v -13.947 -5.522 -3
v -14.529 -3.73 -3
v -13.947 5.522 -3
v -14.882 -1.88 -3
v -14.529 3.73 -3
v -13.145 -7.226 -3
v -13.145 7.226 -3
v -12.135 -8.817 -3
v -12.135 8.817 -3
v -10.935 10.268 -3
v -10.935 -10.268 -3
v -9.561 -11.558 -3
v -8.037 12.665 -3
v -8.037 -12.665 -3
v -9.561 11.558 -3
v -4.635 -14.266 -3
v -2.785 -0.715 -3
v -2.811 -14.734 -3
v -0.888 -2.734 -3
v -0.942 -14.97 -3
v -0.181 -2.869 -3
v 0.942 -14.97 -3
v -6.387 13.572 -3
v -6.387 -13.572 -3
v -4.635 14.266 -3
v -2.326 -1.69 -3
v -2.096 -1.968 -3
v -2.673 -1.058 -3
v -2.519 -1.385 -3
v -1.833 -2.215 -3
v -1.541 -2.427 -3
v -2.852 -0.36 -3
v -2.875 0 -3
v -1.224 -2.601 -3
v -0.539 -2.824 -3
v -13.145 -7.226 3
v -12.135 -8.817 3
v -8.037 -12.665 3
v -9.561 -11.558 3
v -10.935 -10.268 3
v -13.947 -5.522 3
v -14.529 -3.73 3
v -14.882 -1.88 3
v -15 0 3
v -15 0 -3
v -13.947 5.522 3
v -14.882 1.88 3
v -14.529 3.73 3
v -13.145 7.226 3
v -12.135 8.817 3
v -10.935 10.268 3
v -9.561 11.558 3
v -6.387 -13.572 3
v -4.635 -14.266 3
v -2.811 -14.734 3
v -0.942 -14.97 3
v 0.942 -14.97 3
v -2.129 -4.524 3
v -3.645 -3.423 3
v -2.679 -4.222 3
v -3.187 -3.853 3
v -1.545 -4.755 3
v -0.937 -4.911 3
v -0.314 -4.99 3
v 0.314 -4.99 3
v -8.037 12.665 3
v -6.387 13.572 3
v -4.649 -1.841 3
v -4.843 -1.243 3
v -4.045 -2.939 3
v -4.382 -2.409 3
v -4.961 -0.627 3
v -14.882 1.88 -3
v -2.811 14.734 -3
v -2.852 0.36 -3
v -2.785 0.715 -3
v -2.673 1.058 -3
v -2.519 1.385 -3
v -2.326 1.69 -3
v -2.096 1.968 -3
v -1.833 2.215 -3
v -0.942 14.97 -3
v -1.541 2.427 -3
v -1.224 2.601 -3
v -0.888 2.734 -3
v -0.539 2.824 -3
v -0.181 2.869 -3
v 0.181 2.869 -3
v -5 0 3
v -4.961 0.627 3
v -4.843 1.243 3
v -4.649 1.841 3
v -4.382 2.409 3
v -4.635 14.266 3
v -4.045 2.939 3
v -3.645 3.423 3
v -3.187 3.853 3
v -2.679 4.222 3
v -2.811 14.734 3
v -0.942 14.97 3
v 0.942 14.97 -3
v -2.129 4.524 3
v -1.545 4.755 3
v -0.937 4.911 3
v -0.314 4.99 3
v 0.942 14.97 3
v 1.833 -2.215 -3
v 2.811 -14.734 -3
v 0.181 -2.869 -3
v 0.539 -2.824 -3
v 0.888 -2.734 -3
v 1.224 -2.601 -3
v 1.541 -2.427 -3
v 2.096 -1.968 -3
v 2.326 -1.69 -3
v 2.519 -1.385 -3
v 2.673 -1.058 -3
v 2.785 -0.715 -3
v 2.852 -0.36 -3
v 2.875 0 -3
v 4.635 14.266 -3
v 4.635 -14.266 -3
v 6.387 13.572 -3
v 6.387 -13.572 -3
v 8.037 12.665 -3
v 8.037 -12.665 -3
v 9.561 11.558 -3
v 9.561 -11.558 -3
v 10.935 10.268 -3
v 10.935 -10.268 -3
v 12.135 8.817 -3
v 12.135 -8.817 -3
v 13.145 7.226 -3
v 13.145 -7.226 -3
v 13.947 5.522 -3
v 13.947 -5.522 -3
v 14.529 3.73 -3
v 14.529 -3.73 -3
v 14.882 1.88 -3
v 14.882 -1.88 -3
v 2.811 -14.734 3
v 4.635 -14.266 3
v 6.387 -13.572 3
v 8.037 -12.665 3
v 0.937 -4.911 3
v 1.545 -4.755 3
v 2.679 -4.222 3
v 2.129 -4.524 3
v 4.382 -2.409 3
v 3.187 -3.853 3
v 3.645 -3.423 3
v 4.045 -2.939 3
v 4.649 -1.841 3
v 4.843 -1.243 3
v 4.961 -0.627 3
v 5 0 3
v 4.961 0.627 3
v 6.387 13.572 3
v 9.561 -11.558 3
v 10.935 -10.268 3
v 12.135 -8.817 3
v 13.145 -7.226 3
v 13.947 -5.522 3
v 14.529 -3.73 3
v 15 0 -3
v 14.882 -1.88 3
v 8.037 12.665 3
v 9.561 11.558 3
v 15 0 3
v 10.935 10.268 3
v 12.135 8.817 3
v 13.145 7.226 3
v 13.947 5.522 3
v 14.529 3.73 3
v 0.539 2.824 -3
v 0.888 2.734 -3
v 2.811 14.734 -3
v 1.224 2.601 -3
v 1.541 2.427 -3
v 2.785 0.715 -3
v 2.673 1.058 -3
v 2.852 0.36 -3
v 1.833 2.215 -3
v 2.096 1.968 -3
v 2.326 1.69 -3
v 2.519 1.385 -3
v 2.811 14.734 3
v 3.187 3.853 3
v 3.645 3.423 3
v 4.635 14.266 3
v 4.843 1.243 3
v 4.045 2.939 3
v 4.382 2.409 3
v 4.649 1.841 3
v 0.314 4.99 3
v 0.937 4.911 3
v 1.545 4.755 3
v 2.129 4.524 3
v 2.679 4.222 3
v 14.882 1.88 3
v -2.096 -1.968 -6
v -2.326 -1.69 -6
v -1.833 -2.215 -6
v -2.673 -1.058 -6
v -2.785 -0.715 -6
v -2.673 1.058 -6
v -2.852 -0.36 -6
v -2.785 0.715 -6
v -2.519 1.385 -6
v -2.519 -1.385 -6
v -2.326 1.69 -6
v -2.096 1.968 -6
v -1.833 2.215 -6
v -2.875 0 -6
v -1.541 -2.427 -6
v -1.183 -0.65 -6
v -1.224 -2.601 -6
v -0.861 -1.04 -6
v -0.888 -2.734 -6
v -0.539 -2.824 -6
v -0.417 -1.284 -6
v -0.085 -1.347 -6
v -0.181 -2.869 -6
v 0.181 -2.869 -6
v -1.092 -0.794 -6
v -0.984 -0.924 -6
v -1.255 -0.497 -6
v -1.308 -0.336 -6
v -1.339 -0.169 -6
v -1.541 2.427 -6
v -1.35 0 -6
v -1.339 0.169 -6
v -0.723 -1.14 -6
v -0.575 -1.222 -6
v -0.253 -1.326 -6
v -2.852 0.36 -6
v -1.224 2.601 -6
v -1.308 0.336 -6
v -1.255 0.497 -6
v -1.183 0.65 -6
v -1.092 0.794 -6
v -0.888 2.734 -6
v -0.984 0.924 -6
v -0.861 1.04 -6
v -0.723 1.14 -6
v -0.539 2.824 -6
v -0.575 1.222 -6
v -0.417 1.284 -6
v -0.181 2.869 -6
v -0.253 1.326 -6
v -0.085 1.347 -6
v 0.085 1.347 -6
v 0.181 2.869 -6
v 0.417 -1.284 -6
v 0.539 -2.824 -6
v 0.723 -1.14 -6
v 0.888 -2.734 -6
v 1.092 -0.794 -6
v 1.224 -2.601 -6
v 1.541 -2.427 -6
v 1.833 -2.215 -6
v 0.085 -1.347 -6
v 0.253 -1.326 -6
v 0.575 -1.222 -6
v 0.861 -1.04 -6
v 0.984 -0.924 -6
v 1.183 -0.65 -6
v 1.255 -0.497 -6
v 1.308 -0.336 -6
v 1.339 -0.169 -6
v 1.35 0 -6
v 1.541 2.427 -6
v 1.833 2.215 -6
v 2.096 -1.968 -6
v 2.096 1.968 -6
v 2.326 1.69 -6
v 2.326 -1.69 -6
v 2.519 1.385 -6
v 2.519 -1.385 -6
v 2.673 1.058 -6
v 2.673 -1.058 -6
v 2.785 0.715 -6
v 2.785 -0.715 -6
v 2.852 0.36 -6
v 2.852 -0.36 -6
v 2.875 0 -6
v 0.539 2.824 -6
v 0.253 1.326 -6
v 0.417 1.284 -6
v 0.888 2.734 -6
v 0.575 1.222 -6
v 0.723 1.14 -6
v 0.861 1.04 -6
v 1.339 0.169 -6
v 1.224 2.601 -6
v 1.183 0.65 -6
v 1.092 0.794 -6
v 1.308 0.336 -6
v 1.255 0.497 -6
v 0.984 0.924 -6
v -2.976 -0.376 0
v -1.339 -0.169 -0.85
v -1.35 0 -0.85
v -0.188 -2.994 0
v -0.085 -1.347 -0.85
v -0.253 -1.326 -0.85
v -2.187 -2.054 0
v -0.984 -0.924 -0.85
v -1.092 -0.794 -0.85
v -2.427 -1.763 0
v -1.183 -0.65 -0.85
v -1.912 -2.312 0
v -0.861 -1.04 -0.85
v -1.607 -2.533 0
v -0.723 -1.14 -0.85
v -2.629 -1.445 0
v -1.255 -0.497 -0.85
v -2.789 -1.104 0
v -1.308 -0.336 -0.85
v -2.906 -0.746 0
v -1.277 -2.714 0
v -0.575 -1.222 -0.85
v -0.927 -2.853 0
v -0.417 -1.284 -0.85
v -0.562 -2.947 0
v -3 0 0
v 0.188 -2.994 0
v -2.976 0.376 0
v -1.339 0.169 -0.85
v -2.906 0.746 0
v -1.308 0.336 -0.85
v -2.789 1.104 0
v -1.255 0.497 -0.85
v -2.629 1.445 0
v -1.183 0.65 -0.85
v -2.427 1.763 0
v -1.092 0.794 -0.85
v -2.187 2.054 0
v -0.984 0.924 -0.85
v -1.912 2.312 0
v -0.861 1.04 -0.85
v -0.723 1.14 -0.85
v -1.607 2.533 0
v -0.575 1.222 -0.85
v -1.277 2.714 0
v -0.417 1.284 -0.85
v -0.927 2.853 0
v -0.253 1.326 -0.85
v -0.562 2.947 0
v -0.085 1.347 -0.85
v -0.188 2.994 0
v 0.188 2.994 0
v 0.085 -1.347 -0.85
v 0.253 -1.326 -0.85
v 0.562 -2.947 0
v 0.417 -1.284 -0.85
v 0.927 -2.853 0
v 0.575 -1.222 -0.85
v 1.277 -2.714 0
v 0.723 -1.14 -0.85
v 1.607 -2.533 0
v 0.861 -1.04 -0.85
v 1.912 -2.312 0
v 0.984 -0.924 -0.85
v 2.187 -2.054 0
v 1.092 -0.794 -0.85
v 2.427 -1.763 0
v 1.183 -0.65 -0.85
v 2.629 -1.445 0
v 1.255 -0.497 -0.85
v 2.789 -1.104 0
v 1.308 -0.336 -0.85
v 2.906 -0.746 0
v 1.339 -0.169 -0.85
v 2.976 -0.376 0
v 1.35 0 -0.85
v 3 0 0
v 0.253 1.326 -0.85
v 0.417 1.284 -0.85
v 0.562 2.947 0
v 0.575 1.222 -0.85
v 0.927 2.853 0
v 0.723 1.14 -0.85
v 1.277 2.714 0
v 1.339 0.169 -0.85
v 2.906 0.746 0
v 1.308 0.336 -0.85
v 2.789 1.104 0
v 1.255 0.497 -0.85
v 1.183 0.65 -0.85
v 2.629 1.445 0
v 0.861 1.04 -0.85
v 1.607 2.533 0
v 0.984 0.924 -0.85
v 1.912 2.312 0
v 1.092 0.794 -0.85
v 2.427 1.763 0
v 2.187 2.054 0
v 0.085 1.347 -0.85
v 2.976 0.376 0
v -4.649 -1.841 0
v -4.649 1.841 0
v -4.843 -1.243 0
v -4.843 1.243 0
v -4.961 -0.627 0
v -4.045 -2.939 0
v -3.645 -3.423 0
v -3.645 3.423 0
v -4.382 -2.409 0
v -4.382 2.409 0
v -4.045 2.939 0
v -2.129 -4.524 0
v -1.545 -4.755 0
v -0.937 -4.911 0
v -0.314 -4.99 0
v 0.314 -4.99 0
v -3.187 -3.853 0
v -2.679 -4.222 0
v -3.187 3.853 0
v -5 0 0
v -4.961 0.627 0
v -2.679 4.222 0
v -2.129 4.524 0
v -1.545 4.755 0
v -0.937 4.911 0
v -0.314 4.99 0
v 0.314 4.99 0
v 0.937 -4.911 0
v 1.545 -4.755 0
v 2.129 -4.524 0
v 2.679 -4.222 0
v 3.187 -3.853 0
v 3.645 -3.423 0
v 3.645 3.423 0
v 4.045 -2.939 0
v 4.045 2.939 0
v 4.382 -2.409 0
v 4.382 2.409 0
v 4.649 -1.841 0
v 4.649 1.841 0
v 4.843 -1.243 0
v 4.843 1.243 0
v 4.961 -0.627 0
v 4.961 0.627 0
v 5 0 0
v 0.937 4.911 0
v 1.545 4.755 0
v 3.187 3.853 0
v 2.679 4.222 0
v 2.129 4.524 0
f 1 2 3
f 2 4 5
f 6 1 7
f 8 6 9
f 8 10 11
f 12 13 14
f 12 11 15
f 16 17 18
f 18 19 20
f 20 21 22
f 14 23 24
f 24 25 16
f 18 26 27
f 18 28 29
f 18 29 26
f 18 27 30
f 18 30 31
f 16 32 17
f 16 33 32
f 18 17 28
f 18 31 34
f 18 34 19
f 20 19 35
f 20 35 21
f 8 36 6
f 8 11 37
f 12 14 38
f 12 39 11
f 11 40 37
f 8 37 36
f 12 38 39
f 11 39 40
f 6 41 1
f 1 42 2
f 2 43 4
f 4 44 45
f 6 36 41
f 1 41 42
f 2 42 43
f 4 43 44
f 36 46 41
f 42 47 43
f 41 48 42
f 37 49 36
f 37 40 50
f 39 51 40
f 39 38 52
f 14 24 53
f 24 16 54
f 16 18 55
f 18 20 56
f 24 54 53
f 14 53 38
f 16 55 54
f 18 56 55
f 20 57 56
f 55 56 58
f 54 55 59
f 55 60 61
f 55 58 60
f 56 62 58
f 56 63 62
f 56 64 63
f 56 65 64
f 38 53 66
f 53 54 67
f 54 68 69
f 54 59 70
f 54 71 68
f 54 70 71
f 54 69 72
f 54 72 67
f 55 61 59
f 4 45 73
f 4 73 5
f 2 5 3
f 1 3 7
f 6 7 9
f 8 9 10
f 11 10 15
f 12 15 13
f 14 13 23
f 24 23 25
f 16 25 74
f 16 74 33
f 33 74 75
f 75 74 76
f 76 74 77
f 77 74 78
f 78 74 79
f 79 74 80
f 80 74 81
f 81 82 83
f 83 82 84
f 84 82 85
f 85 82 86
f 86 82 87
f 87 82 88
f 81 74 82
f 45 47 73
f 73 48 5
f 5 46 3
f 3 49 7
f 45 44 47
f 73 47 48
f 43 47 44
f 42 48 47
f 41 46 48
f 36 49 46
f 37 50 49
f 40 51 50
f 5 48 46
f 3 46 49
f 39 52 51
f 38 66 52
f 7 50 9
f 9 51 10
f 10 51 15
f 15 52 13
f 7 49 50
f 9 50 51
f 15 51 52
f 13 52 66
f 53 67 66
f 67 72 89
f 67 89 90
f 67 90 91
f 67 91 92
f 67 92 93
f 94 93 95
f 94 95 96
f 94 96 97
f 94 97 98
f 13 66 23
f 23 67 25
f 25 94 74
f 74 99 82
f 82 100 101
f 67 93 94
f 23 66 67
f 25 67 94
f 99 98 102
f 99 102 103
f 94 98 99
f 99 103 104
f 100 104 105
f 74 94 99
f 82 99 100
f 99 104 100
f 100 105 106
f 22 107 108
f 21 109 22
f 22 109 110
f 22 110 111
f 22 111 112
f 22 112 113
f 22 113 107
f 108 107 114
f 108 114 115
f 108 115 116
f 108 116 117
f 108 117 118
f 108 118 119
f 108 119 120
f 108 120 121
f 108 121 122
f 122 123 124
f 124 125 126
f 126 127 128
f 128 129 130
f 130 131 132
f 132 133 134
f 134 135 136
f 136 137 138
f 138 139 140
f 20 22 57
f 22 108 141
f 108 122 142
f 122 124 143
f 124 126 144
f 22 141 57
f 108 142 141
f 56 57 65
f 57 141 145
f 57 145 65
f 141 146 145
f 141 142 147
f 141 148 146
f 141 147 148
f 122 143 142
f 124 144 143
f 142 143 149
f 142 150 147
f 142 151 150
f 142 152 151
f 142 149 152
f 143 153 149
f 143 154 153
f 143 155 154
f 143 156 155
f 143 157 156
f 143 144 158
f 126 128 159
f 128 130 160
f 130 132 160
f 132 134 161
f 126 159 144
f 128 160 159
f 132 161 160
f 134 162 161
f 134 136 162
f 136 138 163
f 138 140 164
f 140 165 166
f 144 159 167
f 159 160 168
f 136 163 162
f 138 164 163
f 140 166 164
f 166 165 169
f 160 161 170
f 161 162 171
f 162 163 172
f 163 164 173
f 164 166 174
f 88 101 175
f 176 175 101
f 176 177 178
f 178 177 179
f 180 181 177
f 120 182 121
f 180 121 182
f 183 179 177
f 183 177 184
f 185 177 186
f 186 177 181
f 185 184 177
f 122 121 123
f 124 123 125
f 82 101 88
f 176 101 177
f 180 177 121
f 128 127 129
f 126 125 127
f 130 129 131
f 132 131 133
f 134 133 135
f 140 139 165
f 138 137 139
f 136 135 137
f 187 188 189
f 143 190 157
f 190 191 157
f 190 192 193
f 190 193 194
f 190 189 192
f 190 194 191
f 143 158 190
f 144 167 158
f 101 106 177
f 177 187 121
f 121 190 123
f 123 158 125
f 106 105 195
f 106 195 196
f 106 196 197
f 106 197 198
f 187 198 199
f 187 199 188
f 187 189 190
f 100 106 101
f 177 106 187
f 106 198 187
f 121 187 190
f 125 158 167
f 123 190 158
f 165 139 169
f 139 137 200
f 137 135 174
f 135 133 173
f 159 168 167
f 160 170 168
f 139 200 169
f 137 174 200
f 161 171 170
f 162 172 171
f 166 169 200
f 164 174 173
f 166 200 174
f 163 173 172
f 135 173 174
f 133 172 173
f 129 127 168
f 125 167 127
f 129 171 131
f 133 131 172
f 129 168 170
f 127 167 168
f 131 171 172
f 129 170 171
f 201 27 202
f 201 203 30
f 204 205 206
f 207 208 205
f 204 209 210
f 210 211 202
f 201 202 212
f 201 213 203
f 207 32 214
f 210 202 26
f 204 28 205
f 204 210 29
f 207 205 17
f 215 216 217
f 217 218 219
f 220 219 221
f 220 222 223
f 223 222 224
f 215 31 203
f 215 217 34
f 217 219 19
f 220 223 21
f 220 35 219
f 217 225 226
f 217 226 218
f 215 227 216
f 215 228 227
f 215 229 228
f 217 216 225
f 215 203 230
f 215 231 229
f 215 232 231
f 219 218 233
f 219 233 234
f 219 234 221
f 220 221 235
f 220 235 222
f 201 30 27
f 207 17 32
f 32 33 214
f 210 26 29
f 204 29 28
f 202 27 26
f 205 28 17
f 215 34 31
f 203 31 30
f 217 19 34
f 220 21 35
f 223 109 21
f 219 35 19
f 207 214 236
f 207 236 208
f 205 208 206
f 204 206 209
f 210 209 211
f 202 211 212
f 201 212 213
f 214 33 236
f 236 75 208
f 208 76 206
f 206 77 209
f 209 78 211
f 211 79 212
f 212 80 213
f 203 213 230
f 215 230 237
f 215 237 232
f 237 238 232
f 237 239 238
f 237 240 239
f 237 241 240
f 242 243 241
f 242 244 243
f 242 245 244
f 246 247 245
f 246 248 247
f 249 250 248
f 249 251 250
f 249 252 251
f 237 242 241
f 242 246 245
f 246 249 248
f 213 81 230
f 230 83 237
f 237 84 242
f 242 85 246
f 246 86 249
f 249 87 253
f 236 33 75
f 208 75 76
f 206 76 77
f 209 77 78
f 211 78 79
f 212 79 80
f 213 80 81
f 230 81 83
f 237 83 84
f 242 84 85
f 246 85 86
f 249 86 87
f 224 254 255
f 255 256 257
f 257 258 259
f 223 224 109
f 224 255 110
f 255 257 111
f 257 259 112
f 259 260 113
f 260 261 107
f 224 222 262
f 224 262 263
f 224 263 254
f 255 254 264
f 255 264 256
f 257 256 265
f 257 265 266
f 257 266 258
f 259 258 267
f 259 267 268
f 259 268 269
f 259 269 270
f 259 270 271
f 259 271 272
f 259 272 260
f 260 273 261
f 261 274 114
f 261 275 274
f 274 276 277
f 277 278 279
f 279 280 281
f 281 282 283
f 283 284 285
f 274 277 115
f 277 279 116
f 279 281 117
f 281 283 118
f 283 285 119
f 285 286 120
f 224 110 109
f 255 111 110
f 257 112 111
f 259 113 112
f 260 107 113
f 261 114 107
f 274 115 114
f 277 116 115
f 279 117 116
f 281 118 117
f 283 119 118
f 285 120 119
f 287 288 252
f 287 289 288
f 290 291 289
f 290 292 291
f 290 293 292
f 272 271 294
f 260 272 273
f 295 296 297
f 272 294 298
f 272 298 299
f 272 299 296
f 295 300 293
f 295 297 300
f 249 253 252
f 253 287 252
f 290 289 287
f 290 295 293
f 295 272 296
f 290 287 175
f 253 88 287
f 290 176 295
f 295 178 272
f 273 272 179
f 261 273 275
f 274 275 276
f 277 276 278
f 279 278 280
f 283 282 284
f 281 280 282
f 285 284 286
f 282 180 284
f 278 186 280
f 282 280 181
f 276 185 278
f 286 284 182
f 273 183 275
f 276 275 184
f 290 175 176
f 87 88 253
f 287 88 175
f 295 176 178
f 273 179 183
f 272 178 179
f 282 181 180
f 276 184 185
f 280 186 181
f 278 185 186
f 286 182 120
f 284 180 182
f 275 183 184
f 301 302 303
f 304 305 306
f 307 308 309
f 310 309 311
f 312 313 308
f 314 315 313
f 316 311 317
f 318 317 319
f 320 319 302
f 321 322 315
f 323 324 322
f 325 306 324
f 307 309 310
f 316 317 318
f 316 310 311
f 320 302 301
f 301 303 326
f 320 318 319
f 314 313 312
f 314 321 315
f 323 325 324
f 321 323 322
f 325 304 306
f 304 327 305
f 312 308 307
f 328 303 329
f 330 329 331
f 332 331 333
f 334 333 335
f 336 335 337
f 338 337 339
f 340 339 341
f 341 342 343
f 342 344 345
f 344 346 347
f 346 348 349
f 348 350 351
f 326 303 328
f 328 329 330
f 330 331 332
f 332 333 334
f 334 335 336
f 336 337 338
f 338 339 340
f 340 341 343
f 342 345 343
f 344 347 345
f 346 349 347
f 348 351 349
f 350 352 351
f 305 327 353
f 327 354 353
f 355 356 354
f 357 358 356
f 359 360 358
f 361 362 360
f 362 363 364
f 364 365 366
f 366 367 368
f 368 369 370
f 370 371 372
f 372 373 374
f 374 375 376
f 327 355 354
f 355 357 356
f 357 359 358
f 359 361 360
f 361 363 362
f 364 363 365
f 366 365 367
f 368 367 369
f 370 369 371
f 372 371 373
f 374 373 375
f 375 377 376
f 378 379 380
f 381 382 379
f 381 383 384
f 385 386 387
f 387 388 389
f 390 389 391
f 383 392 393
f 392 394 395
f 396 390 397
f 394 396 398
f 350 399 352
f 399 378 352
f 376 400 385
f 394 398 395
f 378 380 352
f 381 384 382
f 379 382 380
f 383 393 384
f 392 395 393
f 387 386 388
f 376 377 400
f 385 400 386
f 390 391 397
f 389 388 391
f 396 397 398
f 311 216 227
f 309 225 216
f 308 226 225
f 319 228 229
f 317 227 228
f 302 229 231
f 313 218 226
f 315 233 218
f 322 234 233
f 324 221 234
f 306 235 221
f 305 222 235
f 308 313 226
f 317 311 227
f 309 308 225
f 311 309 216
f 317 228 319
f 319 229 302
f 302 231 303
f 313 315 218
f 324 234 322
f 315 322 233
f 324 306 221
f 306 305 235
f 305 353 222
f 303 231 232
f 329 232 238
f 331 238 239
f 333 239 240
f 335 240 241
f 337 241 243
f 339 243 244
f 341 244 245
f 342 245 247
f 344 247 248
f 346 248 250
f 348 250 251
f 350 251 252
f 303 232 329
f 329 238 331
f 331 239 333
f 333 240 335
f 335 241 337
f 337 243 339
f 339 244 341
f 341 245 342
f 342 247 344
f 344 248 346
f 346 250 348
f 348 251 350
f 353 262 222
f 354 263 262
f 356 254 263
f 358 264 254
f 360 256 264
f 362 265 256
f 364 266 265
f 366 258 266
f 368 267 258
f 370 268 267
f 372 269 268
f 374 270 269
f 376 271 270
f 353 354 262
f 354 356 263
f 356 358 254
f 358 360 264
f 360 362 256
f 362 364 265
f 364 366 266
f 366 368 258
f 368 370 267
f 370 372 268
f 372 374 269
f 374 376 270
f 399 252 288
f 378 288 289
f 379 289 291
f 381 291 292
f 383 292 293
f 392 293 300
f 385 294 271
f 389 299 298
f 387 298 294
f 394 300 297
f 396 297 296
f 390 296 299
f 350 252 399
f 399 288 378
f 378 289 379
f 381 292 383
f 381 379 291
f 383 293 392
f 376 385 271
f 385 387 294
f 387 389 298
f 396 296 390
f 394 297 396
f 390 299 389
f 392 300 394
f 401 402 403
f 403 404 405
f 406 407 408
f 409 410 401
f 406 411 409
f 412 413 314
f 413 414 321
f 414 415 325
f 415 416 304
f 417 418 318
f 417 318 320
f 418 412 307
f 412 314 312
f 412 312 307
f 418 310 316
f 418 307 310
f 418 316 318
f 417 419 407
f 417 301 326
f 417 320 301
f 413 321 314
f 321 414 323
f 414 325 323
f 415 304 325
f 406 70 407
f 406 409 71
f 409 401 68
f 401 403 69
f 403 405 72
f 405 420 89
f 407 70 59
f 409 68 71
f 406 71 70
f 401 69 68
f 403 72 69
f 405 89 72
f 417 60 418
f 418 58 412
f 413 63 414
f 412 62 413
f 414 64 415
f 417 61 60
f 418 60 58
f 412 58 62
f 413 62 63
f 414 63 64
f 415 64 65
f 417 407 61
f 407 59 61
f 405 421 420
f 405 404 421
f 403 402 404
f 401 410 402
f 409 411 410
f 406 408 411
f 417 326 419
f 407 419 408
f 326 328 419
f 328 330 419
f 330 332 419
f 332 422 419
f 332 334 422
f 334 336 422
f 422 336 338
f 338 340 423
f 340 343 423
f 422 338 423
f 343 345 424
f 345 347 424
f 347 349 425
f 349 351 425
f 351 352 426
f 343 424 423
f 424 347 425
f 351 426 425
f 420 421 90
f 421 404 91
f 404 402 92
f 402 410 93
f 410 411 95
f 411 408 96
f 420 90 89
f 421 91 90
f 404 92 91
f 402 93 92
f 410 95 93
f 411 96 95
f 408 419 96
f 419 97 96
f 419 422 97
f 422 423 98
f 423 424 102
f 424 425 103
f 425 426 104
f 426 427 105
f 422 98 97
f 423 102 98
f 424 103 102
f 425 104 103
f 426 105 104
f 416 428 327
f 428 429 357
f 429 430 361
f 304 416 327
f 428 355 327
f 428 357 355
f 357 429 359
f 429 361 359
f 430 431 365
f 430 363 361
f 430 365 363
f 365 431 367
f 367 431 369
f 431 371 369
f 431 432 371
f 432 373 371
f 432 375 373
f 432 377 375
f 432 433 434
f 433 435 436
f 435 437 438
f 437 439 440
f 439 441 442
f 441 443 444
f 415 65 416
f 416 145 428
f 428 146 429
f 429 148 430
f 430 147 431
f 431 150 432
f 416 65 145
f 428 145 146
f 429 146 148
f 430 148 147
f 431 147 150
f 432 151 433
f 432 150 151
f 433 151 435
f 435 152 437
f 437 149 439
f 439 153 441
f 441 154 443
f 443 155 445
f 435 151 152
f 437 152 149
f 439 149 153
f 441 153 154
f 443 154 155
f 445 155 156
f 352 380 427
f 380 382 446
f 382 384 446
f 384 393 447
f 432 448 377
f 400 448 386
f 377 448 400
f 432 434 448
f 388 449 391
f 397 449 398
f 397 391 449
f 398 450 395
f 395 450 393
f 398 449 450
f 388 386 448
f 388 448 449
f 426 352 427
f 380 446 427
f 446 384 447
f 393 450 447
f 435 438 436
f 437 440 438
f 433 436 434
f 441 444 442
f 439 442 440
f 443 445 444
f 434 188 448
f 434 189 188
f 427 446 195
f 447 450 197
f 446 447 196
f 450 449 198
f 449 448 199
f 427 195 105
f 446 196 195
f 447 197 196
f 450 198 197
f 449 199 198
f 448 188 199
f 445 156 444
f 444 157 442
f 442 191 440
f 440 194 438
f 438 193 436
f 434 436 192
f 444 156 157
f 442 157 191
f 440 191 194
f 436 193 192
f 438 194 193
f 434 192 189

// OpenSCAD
$fn = 50;


difference() {
	union() {
		translate(v = [0, 0, -3.0000000000]) {
			cylinder(h = 6, r = 15.0000000000);
		}
		#translate(v = [0, 0, -6.0000000000]) {
			cylinder(h = 6, r = 2.8750000000);
		}
	}
	union() {
		translate(v = [0, 0, 0]) {
			rotate(a = [0, 0, 0]) {
				difference() {
					union() {
						translate(v = [0, 0, -6.0000000000]) {
							cylinder(h = 6, r = 1.0000000000);
						}
						translate(v = [0, 0, -0.8500000000]) {
							cylinder(h = 0.8500000000, r1 = 1.3500000000, r2 = 3.0000000000);
						}
						translate(v = [0, 0, -6.0000000000]) {
							cylinder(h = 6, r = 1.3500000000);
						}
						translate(v = [0, 0, -6.0000000000]) {
							cylinder(h = 6, r = 1.0000000000);
						}
					}
					union();
				}
			}
		}
		#cylinder(h = 3, r = 5.0000000000);
	}
}
